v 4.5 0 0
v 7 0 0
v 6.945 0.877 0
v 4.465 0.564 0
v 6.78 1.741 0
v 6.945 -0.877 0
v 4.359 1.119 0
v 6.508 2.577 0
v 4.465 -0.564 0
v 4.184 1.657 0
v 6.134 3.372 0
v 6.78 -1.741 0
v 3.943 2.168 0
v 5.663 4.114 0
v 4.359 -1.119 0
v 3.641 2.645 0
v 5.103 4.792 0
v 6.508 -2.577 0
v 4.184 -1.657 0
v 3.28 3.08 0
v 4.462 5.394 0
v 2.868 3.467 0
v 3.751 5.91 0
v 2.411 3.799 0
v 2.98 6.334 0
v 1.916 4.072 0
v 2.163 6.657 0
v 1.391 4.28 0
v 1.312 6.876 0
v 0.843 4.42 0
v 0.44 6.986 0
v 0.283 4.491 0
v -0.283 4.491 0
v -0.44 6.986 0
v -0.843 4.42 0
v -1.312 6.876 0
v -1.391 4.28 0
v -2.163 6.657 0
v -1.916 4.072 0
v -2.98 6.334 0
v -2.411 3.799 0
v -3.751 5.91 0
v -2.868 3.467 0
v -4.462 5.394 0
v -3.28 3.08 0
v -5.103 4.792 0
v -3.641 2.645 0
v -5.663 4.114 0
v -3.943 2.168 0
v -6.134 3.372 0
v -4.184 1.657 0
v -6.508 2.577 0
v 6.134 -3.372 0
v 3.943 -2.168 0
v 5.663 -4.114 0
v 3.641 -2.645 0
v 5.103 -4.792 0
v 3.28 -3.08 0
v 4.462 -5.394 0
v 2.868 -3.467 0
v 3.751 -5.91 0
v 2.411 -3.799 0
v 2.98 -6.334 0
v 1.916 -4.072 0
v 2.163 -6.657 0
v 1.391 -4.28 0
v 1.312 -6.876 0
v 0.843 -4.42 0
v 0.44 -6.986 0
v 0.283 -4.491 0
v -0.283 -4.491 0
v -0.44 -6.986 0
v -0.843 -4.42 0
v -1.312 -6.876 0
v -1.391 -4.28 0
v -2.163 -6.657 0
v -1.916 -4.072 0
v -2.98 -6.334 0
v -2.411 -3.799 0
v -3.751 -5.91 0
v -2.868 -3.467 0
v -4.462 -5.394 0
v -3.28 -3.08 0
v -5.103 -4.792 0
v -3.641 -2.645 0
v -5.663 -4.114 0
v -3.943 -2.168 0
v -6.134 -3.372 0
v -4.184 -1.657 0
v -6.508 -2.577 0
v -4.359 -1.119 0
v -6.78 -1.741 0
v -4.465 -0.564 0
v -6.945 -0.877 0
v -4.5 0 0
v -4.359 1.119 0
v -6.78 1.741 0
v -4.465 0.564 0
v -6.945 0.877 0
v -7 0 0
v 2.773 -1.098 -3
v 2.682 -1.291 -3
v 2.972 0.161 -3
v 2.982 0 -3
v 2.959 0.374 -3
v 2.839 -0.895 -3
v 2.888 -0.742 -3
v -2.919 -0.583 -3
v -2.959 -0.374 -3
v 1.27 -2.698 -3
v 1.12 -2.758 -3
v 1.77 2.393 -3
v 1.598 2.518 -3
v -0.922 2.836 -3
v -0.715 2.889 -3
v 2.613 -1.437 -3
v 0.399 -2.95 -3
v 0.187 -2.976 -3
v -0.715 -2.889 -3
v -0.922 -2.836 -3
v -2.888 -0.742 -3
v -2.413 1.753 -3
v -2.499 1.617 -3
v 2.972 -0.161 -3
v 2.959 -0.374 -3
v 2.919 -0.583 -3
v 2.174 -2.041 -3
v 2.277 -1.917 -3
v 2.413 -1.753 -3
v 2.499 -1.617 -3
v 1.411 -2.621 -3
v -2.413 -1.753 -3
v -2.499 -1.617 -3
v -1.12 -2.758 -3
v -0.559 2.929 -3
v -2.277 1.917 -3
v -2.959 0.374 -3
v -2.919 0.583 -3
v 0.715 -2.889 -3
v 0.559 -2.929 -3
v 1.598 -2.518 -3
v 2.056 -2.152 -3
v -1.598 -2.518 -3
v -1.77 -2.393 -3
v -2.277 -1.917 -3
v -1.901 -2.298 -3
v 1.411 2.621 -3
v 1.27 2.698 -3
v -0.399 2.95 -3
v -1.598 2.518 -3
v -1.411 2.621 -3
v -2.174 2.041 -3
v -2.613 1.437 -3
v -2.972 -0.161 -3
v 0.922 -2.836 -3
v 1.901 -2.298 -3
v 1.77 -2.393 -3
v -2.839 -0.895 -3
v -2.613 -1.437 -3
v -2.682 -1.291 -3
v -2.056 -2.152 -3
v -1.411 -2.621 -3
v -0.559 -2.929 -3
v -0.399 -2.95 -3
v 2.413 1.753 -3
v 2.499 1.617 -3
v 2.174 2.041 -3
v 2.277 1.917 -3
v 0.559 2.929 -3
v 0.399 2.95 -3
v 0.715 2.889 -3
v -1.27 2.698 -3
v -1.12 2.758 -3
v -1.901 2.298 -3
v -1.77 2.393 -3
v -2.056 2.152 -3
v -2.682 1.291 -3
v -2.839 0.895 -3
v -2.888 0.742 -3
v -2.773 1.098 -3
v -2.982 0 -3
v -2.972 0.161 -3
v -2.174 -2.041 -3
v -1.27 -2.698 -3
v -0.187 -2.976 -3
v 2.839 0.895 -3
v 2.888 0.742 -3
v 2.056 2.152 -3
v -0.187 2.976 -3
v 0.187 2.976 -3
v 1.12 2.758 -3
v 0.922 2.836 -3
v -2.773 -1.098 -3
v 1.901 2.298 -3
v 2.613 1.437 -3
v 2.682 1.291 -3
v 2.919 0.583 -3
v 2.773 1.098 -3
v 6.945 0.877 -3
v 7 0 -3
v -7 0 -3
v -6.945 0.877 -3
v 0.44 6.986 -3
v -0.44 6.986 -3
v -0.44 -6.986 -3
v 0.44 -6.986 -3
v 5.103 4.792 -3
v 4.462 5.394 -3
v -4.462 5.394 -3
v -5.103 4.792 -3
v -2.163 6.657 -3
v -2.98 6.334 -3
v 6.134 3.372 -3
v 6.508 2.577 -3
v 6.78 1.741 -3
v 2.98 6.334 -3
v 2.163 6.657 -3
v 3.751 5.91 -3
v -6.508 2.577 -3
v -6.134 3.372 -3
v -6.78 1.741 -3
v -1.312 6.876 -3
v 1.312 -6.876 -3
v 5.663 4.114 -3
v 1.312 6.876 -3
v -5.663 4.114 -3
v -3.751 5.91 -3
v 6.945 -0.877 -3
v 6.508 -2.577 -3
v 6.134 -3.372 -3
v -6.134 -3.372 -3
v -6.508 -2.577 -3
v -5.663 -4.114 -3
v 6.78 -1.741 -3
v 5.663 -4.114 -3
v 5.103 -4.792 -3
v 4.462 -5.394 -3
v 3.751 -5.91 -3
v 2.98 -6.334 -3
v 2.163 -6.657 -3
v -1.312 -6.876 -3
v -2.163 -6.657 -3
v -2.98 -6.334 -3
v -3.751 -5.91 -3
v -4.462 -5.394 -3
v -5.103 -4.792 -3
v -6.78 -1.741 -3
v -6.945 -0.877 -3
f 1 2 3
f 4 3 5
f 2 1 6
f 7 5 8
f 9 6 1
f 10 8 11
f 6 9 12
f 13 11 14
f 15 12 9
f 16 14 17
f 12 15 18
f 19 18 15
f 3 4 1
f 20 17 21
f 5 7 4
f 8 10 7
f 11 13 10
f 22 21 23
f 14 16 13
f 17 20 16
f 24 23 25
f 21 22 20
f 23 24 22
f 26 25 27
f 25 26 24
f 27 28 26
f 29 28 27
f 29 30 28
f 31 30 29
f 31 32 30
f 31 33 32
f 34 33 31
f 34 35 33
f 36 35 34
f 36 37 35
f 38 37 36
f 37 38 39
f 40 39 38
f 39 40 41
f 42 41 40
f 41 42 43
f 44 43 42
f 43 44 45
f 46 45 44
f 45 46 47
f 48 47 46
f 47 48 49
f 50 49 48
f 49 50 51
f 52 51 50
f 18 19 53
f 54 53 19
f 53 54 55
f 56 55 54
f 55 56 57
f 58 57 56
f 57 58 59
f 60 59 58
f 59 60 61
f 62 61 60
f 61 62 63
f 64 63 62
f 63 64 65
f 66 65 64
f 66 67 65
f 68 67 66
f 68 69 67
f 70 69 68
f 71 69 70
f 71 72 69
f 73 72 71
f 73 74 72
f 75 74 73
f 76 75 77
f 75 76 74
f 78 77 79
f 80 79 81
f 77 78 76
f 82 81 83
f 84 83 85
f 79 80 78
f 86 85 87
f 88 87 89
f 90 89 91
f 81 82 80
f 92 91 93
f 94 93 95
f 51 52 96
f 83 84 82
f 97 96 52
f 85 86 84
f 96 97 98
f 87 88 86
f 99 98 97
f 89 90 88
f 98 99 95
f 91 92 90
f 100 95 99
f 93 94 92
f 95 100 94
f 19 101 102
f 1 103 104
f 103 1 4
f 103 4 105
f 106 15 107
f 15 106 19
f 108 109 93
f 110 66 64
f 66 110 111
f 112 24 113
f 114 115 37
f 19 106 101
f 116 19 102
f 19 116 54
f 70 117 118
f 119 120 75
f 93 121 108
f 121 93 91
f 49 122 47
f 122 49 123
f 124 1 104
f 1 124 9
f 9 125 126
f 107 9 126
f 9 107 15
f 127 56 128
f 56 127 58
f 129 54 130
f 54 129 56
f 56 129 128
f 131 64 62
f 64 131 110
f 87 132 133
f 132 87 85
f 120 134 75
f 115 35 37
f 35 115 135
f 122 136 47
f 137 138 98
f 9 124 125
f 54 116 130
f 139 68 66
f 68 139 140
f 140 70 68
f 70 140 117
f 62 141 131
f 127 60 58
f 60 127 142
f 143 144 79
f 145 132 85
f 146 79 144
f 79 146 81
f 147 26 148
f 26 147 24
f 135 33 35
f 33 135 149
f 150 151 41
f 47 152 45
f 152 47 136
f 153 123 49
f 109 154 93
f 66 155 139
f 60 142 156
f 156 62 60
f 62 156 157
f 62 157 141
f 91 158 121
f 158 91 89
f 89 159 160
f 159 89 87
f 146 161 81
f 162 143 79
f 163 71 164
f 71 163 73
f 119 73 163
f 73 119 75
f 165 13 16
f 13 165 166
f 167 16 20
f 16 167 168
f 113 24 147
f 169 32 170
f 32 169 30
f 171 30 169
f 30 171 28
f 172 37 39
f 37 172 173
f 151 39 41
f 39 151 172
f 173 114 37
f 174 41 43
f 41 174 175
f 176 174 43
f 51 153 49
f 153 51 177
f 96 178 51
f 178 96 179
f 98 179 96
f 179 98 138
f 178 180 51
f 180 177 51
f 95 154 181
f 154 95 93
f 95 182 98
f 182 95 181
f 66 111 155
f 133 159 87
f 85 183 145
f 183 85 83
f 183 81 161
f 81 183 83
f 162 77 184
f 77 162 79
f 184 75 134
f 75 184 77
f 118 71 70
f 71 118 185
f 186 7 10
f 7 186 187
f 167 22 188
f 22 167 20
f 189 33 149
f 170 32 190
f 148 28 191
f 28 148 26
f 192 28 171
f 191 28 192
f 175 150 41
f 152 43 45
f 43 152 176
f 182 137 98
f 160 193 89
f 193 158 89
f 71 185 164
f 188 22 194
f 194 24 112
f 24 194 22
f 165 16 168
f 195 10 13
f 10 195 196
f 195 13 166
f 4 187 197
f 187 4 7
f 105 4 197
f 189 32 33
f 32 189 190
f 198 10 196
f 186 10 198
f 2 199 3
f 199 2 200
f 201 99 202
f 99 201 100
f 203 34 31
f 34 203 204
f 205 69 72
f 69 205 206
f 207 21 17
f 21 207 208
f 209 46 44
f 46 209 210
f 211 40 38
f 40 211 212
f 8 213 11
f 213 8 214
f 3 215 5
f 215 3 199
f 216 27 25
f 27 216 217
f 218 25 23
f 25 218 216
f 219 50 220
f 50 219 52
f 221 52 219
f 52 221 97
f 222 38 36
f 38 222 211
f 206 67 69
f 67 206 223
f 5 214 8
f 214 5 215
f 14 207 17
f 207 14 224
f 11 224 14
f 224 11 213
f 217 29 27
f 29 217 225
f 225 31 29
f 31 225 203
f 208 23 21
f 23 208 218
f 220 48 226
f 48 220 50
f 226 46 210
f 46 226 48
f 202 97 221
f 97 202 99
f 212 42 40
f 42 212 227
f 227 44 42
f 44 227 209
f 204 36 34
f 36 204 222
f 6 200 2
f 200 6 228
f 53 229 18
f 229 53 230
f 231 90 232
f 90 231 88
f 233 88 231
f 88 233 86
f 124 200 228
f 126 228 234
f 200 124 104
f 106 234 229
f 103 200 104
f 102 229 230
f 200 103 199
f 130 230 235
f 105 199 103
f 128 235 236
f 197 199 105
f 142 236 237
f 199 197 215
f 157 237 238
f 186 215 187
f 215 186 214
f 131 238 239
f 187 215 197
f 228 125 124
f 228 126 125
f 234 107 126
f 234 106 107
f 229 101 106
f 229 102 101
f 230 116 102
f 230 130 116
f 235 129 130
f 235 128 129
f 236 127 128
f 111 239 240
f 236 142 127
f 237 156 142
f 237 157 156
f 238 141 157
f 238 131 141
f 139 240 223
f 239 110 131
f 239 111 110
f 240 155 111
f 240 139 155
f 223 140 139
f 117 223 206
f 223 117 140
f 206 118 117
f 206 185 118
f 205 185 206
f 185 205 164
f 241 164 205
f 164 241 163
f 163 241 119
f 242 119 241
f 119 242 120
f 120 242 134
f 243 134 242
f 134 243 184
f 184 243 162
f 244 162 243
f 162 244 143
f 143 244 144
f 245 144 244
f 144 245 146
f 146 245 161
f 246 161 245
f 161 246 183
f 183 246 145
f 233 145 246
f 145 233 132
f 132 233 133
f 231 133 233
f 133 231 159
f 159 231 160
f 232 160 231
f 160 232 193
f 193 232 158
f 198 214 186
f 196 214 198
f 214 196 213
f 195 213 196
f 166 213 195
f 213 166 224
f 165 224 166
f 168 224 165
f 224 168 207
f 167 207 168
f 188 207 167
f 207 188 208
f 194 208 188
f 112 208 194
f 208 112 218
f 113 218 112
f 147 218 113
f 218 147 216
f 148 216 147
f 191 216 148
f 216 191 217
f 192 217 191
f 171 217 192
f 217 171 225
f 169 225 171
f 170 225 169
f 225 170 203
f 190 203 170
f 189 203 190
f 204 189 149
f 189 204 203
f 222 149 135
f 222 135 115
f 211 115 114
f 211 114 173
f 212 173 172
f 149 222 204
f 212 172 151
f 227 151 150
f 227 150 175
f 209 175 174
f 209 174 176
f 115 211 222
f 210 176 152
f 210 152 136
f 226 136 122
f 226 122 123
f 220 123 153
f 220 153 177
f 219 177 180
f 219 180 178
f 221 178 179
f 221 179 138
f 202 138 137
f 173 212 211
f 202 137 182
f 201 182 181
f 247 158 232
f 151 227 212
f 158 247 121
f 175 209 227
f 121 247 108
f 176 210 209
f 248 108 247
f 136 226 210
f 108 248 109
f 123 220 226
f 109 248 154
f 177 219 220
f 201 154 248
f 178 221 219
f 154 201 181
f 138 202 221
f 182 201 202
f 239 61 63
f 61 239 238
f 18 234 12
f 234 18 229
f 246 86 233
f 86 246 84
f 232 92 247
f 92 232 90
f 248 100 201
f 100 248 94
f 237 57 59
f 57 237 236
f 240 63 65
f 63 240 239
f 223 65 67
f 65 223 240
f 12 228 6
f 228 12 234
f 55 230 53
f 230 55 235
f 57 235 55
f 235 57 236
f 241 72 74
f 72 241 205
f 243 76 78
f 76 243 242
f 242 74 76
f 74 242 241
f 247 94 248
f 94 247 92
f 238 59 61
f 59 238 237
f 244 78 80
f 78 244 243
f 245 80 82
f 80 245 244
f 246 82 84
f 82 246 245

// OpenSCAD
$fn = 50;


difference() {
	union() {
		translate(v = [0, 0, -3.0000000000]) {
			cylinder(h = 3, r = 7.0000000000);
		}
		cylinder(h = 0, r = 10.0000000000);
	}
	union() {
		translate(v = [0, 0, 0]) {
			rotate(a = [0, 0, 0]) {
				difference() {
					union() {
						#translate(v = [0, 0, -3.0000000000]) {
							cylinder(h = 3, r = 2.2500000000);
						}
						#translate(v = [0, 0, -4.2000000000]) {
							cylinder(h = 4.2000000000, r = 7.0000000000, r1 = 2.3750000000, r2 = 4.5000000000);
						}
						#translate(v = [0, 0, -3.0000000000]) {
							cylinder(h = 3, r = 2.3750000000);
						}
						#translate(v = [0, 0, -3.0000000000]) {
							cylinder(h = 3, r = 2.2500000000);
						}
					}
					union();
				}
			}
		}
	}
}
